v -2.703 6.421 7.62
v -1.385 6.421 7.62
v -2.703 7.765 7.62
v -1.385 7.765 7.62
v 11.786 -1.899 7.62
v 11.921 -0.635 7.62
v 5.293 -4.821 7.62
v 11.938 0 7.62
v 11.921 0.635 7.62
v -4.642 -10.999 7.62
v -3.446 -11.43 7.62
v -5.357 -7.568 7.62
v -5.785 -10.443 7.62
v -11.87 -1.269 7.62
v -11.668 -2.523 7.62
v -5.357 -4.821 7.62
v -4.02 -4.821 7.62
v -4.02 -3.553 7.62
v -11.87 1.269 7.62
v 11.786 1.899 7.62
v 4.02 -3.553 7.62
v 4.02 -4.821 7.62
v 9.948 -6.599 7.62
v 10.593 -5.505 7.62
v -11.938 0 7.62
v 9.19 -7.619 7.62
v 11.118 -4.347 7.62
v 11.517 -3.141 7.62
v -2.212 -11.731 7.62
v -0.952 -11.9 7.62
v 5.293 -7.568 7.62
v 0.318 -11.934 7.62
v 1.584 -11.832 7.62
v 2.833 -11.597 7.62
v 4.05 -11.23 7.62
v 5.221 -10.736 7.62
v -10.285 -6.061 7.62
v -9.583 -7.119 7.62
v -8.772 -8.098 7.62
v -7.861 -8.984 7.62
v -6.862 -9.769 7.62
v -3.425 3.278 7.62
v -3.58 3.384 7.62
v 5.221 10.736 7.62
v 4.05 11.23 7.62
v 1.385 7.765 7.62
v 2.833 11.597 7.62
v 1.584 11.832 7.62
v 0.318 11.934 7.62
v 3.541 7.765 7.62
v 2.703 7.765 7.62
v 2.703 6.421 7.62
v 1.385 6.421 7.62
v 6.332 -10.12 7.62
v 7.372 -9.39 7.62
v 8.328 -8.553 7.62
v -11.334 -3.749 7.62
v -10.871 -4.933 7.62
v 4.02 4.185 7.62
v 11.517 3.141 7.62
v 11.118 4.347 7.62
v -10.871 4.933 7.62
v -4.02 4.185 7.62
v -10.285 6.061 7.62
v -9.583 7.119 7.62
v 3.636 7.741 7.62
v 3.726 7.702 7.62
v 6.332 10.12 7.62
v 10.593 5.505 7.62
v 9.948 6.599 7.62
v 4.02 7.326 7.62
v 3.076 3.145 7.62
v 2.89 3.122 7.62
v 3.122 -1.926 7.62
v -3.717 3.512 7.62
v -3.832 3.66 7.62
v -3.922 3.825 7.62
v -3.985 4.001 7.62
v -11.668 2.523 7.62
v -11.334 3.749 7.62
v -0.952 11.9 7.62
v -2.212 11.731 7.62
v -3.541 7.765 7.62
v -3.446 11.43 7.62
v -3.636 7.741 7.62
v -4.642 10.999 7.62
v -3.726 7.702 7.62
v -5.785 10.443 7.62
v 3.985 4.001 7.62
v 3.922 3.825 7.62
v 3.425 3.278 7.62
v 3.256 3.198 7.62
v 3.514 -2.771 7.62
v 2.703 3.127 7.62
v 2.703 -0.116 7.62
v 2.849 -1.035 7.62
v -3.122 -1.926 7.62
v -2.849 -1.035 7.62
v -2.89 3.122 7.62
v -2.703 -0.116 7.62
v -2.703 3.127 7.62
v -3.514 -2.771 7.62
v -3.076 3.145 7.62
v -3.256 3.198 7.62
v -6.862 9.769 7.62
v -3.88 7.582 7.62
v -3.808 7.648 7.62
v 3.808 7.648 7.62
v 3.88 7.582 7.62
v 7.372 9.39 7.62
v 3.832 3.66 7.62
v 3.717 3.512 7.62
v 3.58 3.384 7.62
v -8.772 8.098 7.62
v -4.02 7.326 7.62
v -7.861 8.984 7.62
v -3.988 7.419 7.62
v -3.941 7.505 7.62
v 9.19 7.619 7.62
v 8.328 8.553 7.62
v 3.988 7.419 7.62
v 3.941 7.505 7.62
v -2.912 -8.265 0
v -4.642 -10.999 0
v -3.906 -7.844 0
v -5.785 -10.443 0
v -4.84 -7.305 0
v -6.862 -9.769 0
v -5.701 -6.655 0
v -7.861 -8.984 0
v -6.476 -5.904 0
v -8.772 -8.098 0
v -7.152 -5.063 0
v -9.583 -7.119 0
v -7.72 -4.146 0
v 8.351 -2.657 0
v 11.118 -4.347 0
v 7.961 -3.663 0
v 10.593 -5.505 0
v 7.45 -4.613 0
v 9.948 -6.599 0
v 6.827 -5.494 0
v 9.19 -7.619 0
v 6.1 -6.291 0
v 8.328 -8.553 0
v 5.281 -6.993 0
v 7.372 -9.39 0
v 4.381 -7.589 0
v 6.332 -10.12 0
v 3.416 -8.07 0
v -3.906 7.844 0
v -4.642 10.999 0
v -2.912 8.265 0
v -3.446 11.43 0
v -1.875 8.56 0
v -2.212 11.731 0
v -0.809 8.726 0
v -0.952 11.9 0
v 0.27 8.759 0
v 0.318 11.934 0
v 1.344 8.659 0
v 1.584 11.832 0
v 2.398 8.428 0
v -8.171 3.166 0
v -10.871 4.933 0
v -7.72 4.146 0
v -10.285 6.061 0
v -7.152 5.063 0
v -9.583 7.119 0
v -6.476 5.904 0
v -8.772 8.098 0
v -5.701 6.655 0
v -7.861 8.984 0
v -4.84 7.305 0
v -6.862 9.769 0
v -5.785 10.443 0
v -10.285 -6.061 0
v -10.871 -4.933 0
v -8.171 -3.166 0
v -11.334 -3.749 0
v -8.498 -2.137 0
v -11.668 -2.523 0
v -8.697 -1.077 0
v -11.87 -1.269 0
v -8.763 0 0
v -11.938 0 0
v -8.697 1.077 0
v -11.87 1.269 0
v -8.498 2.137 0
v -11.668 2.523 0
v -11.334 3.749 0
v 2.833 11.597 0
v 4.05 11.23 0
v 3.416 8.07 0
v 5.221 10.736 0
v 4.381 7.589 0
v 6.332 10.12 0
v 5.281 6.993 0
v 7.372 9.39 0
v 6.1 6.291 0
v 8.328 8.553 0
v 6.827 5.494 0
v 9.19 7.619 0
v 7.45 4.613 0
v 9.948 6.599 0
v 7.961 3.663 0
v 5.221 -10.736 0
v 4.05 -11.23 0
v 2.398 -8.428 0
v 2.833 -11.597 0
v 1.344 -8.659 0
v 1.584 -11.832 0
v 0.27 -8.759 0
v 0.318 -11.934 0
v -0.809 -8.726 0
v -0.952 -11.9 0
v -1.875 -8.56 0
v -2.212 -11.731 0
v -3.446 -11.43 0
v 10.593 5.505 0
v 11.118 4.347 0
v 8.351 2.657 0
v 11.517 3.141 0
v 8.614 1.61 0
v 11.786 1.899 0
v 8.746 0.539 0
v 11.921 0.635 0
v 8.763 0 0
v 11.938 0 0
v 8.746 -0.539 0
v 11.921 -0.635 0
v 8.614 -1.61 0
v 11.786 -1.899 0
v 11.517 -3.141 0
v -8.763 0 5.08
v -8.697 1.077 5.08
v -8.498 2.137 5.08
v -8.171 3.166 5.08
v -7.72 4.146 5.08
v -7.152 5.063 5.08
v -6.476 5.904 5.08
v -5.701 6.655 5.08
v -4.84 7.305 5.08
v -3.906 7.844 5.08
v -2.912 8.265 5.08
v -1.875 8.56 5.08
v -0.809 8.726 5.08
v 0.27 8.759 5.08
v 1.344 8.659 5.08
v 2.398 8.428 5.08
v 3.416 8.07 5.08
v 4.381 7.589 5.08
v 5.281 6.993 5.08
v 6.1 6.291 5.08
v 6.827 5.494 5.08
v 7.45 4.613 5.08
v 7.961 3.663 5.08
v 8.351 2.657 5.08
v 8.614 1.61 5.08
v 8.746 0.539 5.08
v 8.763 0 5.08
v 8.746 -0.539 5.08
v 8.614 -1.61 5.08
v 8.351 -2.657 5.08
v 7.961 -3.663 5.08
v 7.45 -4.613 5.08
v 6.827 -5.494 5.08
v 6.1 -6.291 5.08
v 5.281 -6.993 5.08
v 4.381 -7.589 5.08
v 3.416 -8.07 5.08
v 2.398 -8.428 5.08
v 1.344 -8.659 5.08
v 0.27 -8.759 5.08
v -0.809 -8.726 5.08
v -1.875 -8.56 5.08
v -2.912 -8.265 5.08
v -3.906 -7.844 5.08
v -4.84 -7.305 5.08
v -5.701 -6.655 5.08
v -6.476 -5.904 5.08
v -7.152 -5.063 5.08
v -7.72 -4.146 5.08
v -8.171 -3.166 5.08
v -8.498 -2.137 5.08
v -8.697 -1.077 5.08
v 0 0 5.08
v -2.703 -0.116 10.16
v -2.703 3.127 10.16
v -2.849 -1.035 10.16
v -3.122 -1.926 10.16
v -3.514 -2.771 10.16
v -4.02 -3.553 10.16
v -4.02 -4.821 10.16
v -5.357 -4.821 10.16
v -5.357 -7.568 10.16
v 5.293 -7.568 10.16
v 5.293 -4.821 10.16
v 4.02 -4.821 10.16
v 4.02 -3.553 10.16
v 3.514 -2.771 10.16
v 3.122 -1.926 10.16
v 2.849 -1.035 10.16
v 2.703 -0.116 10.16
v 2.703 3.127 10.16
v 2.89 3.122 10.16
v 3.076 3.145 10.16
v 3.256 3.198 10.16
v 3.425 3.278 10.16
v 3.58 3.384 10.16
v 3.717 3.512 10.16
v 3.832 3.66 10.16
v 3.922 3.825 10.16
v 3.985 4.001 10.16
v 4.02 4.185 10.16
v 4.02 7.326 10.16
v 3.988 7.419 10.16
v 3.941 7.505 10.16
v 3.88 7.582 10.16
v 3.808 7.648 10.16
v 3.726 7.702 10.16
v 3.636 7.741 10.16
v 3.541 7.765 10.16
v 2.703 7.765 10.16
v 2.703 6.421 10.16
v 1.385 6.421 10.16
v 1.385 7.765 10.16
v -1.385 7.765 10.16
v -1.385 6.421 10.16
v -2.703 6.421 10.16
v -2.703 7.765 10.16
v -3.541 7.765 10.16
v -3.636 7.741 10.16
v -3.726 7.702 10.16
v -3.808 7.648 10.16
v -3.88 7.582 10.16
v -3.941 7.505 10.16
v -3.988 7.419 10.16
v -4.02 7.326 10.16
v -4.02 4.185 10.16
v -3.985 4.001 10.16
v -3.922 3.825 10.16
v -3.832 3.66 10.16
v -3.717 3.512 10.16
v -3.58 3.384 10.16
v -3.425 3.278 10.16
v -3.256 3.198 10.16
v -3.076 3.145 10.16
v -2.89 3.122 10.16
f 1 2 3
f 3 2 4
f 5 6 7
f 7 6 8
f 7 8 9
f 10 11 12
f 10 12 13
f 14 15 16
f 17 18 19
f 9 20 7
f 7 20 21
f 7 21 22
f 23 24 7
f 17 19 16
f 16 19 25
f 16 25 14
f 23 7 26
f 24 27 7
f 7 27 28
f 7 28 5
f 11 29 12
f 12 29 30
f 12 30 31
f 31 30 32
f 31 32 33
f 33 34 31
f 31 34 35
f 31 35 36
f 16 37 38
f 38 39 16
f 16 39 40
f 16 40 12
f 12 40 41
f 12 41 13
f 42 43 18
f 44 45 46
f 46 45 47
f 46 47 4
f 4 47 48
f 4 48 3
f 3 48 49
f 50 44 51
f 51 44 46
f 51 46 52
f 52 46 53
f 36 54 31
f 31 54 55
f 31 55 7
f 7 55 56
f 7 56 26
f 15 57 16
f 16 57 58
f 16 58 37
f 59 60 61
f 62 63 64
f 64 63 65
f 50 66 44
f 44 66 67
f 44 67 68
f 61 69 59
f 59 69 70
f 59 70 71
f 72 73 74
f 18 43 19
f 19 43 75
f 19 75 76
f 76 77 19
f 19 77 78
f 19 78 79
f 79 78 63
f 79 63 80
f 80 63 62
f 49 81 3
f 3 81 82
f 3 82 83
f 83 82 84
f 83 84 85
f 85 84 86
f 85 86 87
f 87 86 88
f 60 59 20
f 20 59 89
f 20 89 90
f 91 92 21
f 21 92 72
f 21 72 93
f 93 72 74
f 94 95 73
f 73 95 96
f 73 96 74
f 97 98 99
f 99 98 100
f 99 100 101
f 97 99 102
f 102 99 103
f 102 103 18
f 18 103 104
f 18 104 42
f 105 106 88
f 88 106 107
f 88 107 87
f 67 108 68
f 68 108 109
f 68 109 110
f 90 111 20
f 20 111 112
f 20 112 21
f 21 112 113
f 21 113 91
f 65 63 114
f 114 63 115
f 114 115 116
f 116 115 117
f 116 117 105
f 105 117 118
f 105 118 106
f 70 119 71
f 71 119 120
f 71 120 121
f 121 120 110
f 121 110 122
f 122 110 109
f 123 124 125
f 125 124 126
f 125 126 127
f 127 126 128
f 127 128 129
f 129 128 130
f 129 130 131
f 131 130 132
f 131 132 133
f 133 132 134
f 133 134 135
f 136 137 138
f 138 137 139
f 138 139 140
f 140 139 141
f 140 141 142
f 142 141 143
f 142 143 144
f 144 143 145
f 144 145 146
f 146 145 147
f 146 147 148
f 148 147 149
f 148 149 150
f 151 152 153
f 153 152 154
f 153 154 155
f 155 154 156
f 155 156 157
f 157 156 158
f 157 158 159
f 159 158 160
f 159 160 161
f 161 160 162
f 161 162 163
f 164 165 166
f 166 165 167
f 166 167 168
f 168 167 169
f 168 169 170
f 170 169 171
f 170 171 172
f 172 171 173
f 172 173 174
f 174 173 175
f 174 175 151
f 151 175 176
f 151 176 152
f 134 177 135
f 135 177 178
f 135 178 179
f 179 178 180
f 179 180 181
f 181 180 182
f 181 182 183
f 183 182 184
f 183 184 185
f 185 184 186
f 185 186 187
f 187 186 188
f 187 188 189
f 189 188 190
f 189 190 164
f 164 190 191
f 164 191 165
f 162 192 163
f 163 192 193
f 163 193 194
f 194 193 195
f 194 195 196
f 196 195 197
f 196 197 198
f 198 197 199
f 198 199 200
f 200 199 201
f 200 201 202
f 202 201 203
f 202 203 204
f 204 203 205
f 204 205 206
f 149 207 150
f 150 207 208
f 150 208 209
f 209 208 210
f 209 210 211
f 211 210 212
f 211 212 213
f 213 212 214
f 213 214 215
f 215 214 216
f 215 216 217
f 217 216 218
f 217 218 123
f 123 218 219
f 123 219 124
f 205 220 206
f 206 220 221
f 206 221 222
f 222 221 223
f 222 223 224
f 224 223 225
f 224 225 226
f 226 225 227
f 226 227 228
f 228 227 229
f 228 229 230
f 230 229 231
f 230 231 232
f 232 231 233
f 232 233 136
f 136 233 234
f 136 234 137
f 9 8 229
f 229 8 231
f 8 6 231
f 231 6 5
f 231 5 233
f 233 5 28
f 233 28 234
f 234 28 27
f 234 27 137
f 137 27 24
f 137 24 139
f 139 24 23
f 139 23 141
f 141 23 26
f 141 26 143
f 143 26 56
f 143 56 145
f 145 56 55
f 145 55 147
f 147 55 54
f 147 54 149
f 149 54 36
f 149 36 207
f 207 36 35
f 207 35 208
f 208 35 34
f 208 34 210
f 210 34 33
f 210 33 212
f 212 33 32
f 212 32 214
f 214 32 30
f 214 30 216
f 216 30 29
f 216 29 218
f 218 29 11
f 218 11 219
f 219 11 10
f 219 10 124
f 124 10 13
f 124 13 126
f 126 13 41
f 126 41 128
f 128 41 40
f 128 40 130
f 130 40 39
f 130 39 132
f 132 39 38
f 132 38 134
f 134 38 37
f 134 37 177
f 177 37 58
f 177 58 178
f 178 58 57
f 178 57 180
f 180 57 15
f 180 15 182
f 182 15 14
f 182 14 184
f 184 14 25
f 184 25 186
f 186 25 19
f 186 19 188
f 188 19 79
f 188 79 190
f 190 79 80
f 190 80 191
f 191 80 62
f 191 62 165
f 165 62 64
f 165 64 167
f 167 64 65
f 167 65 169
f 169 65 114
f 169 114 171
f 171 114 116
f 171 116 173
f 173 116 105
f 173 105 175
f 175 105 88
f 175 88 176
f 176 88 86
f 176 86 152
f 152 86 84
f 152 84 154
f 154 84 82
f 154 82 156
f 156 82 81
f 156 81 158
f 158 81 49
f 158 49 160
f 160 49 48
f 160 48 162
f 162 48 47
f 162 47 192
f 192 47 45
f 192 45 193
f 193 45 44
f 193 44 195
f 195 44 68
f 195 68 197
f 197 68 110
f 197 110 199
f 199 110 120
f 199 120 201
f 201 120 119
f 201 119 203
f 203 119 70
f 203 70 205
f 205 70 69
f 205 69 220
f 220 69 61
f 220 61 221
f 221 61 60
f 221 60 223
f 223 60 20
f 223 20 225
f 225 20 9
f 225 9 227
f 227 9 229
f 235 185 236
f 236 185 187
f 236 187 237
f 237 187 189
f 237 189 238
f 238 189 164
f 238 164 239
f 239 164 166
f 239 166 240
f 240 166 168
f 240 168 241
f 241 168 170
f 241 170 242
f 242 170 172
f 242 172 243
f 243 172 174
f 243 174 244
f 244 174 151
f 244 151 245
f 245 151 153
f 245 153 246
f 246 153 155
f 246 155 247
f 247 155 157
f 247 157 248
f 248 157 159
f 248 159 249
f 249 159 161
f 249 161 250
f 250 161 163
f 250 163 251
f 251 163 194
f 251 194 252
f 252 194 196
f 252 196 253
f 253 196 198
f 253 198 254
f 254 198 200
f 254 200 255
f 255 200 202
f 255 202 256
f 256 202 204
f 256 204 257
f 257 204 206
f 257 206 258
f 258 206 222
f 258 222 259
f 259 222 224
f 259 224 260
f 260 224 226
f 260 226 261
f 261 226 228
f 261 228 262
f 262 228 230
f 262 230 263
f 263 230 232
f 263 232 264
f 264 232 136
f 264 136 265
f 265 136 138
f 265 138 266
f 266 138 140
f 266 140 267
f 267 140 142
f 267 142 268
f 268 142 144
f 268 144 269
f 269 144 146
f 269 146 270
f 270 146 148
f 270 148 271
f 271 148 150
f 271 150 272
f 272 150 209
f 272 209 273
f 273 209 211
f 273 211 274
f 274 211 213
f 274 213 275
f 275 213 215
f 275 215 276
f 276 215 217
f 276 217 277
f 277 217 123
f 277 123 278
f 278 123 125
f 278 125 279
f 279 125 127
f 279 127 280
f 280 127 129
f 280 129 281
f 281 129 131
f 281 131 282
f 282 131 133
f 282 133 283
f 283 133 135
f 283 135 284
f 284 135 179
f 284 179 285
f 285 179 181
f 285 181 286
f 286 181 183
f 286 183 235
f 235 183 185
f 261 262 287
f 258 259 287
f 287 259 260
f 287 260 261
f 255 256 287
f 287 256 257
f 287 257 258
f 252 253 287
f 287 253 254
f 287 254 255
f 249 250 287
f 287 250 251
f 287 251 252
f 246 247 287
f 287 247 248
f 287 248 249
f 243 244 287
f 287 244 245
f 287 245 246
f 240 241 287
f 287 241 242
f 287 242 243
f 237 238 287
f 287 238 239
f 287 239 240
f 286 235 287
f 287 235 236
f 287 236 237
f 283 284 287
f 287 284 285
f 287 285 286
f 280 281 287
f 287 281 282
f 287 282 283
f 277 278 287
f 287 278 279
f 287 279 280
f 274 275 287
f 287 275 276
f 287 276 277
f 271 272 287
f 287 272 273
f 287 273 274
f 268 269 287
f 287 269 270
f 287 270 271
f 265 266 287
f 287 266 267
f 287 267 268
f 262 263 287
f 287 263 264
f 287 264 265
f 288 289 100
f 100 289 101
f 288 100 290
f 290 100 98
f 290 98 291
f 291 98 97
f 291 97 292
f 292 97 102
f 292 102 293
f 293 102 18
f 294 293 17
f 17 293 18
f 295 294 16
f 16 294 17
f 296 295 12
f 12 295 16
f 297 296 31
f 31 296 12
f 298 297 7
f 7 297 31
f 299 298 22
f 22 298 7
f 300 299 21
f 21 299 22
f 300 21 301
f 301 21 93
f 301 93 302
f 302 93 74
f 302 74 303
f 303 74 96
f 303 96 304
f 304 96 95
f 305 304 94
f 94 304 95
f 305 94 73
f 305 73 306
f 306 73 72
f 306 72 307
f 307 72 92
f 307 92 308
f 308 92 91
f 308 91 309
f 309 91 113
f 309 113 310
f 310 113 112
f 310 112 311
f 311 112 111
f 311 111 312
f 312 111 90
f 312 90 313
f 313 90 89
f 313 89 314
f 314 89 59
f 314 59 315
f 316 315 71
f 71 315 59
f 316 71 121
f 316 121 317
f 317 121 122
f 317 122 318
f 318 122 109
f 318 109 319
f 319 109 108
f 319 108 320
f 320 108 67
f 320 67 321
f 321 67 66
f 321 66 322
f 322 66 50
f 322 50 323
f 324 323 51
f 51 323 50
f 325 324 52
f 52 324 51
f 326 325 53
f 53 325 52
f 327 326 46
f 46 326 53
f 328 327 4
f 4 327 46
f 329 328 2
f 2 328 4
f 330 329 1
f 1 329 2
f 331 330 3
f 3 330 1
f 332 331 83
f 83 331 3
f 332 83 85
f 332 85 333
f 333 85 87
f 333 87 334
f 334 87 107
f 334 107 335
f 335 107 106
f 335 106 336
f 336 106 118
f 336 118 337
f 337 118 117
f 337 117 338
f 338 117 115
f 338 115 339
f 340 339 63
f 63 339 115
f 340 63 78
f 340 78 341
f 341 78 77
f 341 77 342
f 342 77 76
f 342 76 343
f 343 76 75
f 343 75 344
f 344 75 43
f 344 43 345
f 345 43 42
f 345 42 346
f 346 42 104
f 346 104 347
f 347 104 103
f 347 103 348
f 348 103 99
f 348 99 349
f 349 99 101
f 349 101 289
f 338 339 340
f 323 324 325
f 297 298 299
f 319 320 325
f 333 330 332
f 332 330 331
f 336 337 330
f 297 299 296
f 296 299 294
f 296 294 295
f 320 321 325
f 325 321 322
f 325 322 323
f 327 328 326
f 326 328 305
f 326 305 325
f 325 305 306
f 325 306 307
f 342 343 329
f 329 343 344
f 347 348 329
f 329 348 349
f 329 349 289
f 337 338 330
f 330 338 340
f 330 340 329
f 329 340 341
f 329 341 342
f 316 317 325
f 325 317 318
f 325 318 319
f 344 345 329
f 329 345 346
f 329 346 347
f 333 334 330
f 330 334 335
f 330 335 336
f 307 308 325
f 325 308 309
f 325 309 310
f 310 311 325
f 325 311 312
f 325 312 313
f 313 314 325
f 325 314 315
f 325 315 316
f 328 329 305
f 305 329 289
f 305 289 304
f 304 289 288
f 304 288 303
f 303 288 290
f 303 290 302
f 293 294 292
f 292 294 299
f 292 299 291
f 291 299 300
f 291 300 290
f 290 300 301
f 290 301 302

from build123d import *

# Parameters (mm, degrees)
SKETCH1_R           = 11.938
SKETCH1_R_2         = 8.763
BOSS_EXTRUDE1_DEPTH = 5.08
SKETCH2_R           = 11.938
BOSS_EXTRUDE2_DEPTH = 2.54
BOSS_EXTRUDE8_DEPTH = 2.54


with BuildPart() as part:
    # Sketch1 → Boss-Extrude1 (new body)
    with BuildSketch(Plane.XY):
        Circle(SKETCH1_R)
        Circle(SKETCH1_R_2, mode=Mode.SUBTRACT)
    extrude(amount=BOSS_EXTRUDE1_DEPTH)

    # Sketch2 → Boss-Extrude2 (add)
    with BuildSketch(Plane.XY.offset(5.08)):
        Circle(SKETCH2_R)
    extrude(amount=BOSS_EXTRUDE2_DEPTH)

    # Sketch3 → Boss-Extrude8 (add)
    with BuildSketch(Plane.XY.offset(7.62)):
        with BuildLine():
            Line((1.384866851, 7.764949028), (-1.384866851, 7.764949028))
            Line((-1.384866851, 7.764949028), (-1.384866851, 6.420894347))
            Line((-1.384866851, 6.420894347), (-2.702727896, 6.420894347))
            Line((-2.702727896, 6.420894347), (-2.702727896, 7.764949028))
            Line((-2.702727896, 7.764949028), (-3.54067733, 7.764949028))
            ThreePointArc((-3.54067733, 7.764949028), (-3.845533247, 7.616635469), (-4.019746325, 7.325802449))
            Line((-4.019746325, 7.325802449), (-4.019746325, 4.185239036))
            ThreePointArc((-4.019746325, 4.185239036), (-3.580344494, 3.383503573), (-2.702727896, 3.127295005))
            Line((-2.702727896, 3.127295005), (-2.702727896, -0.115652291))
            ThreePointArc((-2.702727896, -0.115652291), (-3.121575281, -1.926106842), (-4.019746325, -3.552903568))
            Line((-4.019746325, -3.552903568), (-4.019746325, -4.820747752))
            Line((-4.019746325, -4.820747752), (-5.357231947, -4.820747752))
            Line((-5.357231947, -4.820747752), (-5.357231947, -7.568020311))
            Line((-5.357231947, -7.568020311), (5.293156983, -7.568020311))
            Line((5.293156983, -7.568020311), (5.293156983, -4.820747752))
            Line((5.293156983, -4.820747752), (4.019746325, -4.820747752))
            Line((4.019746325, -4.820747752), (4.019746325, -3.552903568))
            ThreePointArc((4.019746325, -3.552903568), (3.121575281, -1.926106842), (2.702727896, -0.115652291))
            Line((2.702727896, -0.115652291), (2.702727896, 3.127295005))
            ThreePointArc((2.702727896, 3.127295005), (3.580344494, 3.383503573), (4.019746325, 4.185239036))
            Line((4.019746325, 4.185239036), (4.019746325, 7.325802449))
            ThreePointArc((4.019746325, 7.325802449), (3.845533247, 7.616635469), (3.54067733, 7.764949028))
            Line((3.54067733, 7.764949028), (2.702727896, 7.764949028))
            Line((2.702727896, 7.764949028), (2.702727896, 6.420894347))
            Line((2.702727896, 6.420894347), (1.384866851, 6.420894347))
            Line((1.384866851, 6.420894347), (1.384866851, 7.764949028))
        make_face()
    extrude(amount=BOSS_EXTRUDE8_DEPTH)


solid = part.part
